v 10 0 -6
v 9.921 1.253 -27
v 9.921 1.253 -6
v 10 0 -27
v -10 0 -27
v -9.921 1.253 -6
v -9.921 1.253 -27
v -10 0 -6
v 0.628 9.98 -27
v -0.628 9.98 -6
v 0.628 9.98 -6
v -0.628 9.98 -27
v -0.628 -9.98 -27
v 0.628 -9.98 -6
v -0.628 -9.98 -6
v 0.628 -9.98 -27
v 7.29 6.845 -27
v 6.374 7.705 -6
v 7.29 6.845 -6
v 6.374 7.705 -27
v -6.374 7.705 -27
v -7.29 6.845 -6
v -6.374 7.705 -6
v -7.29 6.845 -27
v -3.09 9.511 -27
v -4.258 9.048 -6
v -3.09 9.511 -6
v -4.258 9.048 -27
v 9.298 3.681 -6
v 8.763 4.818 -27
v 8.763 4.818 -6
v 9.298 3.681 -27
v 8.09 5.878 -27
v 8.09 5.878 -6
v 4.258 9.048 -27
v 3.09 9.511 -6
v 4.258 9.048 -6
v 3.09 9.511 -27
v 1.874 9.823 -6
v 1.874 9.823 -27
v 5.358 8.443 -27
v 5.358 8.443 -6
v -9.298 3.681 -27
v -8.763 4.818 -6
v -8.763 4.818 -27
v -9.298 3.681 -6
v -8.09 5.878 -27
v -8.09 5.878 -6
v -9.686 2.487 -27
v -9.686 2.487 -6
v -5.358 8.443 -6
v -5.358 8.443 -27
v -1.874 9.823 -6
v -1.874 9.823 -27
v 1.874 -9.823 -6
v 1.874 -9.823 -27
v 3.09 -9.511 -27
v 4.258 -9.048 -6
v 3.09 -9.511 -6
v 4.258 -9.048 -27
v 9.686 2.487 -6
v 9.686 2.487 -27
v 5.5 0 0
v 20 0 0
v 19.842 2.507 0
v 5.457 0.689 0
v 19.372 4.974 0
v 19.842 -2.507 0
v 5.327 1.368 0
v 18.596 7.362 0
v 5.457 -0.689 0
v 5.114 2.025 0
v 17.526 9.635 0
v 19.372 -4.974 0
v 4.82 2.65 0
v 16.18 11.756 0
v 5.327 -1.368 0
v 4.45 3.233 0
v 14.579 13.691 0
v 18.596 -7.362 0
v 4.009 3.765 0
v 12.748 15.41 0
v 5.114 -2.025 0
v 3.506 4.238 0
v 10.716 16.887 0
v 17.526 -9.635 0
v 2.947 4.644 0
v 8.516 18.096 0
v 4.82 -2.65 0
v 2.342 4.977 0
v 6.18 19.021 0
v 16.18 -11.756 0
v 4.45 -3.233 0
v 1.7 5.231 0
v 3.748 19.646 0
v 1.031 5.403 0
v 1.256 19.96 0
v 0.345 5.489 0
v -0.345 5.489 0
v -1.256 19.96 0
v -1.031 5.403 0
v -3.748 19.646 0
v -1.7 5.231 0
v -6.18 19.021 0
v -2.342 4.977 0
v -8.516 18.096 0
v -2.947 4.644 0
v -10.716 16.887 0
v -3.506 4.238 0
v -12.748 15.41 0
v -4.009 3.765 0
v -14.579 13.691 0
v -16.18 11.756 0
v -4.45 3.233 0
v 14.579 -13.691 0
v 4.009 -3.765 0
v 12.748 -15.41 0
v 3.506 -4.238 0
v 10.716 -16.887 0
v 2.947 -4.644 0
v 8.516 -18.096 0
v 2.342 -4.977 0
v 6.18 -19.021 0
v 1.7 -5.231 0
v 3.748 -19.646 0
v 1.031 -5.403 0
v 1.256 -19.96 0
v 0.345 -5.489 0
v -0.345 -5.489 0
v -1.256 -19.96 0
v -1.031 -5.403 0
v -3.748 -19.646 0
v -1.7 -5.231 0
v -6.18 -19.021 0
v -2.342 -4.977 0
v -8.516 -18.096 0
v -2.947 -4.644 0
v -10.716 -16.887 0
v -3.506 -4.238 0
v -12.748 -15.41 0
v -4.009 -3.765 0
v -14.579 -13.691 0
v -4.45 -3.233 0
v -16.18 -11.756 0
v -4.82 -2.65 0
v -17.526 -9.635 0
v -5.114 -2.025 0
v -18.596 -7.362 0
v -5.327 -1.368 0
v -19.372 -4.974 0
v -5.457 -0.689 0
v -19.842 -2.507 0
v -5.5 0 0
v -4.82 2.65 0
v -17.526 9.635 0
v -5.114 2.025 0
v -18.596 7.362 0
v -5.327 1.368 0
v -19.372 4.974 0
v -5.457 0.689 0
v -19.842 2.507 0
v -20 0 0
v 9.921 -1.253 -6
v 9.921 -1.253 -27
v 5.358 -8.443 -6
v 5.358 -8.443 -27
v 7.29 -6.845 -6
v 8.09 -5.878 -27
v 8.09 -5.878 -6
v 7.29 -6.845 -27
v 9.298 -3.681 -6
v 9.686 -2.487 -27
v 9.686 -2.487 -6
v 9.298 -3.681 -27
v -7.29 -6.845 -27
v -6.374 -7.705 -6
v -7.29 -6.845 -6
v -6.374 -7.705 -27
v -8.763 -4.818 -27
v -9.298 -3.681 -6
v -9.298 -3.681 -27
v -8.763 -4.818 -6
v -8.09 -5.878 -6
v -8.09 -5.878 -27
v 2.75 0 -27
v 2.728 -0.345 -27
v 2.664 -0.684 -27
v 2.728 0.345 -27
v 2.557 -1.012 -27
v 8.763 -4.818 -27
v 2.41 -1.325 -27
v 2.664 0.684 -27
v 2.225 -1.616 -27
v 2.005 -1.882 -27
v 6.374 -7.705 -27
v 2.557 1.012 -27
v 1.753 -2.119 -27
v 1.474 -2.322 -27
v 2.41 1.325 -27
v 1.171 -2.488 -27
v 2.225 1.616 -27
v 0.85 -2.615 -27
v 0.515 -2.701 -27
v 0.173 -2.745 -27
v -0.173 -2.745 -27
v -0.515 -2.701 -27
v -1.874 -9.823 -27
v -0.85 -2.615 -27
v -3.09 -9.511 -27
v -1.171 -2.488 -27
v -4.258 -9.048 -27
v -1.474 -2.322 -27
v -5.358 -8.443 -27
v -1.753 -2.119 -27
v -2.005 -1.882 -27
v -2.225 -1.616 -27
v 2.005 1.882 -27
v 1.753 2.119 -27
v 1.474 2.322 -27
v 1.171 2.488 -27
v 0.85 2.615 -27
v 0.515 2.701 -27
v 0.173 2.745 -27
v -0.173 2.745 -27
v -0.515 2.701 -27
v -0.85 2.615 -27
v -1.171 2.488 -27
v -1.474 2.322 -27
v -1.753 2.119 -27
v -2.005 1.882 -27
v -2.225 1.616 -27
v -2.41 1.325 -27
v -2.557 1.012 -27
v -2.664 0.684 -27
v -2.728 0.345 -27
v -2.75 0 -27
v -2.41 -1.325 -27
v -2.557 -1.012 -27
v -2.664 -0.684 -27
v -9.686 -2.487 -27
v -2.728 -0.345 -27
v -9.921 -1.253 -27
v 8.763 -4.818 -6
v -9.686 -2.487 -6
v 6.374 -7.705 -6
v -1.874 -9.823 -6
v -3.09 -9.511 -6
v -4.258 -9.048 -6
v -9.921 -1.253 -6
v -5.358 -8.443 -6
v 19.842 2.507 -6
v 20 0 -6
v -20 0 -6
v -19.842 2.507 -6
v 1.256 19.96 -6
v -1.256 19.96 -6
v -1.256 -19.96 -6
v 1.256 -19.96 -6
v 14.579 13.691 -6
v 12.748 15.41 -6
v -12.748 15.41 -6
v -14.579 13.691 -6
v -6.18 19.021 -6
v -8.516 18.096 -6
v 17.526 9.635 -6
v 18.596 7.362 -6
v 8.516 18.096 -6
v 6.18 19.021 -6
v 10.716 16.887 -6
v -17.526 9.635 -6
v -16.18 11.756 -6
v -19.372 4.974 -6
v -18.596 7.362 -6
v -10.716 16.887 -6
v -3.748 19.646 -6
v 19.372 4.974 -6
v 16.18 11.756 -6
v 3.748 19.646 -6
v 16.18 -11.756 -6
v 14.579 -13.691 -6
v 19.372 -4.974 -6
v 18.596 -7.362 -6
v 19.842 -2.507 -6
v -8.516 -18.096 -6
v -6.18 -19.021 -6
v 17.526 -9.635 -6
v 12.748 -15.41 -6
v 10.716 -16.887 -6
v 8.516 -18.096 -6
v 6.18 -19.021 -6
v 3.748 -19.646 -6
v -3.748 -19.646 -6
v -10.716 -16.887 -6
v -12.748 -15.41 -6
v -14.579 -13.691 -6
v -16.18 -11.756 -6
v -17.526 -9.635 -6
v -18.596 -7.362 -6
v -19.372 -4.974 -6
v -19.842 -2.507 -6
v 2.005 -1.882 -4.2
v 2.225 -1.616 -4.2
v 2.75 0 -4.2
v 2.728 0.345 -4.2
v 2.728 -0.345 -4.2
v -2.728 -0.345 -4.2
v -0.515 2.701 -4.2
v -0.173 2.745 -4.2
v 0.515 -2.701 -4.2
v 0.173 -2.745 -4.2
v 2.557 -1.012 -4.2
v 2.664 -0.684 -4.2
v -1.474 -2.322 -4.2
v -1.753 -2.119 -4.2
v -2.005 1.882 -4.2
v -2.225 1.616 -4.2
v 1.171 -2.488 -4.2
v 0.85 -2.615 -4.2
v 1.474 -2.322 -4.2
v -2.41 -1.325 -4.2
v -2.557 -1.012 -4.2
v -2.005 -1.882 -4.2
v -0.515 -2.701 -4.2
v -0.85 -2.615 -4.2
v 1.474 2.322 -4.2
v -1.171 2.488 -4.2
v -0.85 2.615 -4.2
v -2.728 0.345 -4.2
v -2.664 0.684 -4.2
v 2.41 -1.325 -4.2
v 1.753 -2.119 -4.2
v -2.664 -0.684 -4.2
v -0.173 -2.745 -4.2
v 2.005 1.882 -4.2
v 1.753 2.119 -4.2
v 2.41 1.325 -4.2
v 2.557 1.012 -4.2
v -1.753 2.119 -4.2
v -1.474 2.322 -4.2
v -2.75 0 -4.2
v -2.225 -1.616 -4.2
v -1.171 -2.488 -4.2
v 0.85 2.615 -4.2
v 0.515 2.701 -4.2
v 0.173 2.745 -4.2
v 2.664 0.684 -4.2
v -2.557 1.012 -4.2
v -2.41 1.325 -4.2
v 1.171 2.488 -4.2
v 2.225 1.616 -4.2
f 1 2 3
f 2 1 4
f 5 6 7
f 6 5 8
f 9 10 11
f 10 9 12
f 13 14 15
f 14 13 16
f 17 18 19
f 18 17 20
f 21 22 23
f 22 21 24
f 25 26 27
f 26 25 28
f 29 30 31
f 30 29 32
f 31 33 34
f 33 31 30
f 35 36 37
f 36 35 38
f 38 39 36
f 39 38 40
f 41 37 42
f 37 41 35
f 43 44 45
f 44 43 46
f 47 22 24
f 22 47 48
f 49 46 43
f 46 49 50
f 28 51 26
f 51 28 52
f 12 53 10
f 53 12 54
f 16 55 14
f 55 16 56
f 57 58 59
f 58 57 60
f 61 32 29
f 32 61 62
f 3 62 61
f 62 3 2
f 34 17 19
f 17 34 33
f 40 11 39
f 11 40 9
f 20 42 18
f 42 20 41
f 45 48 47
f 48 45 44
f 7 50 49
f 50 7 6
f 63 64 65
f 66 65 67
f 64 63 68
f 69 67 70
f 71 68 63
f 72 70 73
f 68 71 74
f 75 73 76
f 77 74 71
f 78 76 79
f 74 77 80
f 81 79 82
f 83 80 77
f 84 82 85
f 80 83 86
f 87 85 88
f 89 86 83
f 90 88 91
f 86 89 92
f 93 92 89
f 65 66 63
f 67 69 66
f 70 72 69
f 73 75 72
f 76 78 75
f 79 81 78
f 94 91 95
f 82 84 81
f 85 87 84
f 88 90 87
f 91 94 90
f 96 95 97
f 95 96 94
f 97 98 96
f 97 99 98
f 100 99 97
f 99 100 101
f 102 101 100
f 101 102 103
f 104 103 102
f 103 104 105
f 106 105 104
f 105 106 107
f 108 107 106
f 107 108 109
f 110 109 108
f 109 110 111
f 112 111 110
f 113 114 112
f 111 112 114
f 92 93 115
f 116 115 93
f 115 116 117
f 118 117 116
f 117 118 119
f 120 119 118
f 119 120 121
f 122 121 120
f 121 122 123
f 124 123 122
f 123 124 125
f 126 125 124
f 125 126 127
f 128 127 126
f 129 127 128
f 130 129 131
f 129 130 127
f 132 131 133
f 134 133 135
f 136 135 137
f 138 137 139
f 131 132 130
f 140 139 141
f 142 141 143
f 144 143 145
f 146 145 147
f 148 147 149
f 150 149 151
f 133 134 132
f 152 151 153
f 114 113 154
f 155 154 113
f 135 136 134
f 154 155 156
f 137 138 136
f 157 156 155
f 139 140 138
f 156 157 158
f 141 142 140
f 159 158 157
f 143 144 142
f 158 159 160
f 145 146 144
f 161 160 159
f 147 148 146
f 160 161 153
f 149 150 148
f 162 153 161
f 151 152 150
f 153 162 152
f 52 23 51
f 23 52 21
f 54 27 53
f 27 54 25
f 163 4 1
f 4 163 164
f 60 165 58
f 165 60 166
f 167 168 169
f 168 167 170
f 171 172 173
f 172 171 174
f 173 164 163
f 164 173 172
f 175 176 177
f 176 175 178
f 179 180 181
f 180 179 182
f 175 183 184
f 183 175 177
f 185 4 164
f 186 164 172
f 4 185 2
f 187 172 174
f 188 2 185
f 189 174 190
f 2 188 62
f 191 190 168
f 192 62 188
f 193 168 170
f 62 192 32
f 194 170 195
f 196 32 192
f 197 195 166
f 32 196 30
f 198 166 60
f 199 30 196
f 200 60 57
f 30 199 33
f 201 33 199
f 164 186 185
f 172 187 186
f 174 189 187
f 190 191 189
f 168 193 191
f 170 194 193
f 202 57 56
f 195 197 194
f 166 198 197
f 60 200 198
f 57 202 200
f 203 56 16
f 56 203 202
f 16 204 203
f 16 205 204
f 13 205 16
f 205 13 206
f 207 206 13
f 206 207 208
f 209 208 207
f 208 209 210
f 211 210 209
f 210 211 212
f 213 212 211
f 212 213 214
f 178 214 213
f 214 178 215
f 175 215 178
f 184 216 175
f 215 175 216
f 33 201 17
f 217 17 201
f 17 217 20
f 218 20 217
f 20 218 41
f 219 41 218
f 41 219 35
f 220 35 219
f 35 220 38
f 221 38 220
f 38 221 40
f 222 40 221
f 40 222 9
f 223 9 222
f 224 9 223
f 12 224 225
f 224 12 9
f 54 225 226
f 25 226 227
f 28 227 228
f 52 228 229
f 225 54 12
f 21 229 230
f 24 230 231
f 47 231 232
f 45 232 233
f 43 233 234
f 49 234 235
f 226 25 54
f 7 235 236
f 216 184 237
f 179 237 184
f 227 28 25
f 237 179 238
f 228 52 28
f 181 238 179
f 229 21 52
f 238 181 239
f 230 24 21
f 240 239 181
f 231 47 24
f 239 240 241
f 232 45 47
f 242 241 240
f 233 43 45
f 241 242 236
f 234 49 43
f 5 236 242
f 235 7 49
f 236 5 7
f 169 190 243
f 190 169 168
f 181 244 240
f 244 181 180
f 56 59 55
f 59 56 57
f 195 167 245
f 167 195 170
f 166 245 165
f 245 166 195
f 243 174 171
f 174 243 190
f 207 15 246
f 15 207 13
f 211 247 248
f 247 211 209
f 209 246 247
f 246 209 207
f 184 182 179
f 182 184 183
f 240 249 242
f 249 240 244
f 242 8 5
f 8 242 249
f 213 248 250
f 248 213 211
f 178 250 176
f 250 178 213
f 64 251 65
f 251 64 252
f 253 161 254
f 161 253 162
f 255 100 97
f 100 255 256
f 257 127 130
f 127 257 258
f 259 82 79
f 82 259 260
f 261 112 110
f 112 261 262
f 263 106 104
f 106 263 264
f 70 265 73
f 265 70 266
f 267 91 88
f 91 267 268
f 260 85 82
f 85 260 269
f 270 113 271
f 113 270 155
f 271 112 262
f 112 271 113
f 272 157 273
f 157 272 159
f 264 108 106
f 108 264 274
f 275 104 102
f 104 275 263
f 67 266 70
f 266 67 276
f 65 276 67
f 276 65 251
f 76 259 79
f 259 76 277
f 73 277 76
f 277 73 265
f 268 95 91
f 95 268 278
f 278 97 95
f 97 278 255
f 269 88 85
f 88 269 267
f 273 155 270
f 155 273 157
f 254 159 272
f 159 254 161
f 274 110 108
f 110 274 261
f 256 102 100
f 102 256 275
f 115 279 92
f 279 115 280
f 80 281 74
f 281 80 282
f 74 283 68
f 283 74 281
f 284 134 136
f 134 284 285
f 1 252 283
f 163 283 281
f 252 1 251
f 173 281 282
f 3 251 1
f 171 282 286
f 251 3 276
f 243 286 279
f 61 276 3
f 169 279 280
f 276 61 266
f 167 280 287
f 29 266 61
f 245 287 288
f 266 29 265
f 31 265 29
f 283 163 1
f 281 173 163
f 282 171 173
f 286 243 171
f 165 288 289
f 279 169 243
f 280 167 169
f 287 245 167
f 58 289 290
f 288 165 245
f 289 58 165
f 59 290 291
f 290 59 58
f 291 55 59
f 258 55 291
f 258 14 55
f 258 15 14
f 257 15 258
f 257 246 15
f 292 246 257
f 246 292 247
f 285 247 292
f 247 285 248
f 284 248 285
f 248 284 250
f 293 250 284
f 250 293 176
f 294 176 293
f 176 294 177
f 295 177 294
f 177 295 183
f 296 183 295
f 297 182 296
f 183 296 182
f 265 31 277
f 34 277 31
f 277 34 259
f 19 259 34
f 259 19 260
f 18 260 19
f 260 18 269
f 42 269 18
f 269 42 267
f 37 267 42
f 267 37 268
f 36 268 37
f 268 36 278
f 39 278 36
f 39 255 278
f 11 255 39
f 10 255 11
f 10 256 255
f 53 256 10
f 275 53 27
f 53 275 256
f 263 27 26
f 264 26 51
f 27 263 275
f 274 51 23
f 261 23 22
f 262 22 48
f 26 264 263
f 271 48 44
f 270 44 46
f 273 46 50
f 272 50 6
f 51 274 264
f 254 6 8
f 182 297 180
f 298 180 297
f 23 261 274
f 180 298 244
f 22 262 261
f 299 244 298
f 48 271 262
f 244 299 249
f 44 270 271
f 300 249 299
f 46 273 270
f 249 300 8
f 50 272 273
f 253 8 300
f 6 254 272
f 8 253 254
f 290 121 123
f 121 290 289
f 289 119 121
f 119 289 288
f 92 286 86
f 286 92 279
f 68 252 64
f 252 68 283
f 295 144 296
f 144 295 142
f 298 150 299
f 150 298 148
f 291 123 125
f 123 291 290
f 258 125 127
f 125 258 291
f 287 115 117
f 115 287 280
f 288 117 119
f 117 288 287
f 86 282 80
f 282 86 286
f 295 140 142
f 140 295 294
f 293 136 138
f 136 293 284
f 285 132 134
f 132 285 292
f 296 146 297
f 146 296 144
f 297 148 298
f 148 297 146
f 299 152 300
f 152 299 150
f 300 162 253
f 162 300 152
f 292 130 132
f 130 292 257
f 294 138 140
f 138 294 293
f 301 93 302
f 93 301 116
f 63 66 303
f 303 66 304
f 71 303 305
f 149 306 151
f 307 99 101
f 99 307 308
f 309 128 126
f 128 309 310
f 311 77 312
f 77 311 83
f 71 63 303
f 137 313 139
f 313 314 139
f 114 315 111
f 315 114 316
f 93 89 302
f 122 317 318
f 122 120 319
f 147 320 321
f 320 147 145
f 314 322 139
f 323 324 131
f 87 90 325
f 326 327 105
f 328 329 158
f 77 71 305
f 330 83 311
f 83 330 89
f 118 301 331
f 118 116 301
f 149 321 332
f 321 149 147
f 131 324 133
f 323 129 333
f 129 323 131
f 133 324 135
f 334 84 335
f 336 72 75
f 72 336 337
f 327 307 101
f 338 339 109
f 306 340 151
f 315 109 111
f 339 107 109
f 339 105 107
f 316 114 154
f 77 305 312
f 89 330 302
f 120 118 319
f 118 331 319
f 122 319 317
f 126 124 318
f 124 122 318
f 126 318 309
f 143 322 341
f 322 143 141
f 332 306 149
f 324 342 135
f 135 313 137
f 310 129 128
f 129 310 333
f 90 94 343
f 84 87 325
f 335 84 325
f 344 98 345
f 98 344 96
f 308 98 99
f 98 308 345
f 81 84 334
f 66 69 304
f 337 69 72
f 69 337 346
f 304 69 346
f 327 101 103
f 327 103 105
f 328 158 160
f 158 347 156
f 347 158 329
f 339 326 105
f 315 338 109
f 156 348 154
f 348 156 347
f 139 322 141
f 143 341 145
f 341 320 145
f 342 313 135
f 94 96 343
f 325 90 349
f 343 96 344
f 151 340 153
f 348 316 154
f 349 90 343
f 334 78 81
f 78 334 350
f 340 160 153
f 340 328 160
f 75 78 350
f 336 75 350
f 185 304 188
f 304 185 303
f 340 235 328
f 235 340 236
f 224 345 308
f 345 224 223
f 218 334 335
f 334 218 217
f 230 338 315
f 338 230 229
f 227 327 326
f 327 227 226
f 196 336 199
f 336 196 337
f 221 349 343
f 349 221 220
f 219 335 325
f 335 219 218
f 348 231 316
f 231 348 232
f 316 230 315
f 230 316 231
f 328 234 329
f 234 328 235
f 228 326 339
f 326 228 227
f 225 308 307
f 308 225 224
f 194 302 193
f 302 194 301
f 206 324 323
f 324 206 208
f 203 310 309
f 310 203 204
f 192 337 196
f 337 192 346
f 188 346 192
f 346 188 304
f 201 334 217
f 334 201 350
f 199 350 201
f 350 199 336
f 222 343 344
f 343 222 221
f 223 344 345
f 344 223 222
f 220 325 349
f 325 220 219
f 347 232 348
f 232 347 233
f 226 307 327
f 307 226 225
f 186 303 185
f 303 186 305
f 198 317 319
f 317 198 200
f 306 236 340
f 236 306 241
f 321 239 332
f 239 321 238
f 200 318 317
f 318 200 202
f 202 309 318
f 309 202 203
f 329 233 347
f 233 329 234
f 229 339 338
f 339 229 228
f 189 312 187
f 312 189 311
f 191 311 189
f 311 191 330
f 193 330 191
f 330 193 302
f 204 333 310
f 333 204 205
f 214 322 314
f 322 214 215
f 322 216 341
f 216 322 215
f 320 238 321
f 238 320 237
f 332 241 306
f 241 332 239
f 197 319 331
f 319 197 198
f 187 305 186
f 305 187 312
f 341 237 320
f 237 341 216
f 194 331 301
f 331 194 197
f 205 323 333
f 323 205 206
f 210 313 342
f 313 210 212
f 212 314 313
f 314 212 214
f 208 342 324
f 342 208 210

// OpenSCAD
$fn = 50;


difference() {
	union() {
		translate(v = [0, 0, -27.0000000000]) {
			cylinder(h = 27, r = 10.0000000000);
		}
		translate(v = [0, 0, -6.0000000000]) {
			cylinder(h = 6, r = 20.0000000000);
		}
	}
	union() {
		translate(v = [0, 0, 0]) {
			rotate(a = [0, 0, 0]) {
				difference() {
					union() {
						#translate(v = [0, 0, -27.0000000000]) {
							cylinder(h = 27, r = 2.2500000000);
						}
						#translate(v = [0, 0, -4.2000000000]) {
							cylinder(h = 4.2000000000, r = 10.0000000000, r1 = 2.7500000000, r2 = 5.5000000000);
						}
						#translate(v = [0, 0, -27.0000000000]) {
							cylinder(h = 27, r = 2.7500000000);
						}
						#translate(v = [0, 0, -27.0000000000]) {
							cylinder(h = 27, r = 2.2500000000);
						}
					}
					union();
				}
			}
		}
	}
}
